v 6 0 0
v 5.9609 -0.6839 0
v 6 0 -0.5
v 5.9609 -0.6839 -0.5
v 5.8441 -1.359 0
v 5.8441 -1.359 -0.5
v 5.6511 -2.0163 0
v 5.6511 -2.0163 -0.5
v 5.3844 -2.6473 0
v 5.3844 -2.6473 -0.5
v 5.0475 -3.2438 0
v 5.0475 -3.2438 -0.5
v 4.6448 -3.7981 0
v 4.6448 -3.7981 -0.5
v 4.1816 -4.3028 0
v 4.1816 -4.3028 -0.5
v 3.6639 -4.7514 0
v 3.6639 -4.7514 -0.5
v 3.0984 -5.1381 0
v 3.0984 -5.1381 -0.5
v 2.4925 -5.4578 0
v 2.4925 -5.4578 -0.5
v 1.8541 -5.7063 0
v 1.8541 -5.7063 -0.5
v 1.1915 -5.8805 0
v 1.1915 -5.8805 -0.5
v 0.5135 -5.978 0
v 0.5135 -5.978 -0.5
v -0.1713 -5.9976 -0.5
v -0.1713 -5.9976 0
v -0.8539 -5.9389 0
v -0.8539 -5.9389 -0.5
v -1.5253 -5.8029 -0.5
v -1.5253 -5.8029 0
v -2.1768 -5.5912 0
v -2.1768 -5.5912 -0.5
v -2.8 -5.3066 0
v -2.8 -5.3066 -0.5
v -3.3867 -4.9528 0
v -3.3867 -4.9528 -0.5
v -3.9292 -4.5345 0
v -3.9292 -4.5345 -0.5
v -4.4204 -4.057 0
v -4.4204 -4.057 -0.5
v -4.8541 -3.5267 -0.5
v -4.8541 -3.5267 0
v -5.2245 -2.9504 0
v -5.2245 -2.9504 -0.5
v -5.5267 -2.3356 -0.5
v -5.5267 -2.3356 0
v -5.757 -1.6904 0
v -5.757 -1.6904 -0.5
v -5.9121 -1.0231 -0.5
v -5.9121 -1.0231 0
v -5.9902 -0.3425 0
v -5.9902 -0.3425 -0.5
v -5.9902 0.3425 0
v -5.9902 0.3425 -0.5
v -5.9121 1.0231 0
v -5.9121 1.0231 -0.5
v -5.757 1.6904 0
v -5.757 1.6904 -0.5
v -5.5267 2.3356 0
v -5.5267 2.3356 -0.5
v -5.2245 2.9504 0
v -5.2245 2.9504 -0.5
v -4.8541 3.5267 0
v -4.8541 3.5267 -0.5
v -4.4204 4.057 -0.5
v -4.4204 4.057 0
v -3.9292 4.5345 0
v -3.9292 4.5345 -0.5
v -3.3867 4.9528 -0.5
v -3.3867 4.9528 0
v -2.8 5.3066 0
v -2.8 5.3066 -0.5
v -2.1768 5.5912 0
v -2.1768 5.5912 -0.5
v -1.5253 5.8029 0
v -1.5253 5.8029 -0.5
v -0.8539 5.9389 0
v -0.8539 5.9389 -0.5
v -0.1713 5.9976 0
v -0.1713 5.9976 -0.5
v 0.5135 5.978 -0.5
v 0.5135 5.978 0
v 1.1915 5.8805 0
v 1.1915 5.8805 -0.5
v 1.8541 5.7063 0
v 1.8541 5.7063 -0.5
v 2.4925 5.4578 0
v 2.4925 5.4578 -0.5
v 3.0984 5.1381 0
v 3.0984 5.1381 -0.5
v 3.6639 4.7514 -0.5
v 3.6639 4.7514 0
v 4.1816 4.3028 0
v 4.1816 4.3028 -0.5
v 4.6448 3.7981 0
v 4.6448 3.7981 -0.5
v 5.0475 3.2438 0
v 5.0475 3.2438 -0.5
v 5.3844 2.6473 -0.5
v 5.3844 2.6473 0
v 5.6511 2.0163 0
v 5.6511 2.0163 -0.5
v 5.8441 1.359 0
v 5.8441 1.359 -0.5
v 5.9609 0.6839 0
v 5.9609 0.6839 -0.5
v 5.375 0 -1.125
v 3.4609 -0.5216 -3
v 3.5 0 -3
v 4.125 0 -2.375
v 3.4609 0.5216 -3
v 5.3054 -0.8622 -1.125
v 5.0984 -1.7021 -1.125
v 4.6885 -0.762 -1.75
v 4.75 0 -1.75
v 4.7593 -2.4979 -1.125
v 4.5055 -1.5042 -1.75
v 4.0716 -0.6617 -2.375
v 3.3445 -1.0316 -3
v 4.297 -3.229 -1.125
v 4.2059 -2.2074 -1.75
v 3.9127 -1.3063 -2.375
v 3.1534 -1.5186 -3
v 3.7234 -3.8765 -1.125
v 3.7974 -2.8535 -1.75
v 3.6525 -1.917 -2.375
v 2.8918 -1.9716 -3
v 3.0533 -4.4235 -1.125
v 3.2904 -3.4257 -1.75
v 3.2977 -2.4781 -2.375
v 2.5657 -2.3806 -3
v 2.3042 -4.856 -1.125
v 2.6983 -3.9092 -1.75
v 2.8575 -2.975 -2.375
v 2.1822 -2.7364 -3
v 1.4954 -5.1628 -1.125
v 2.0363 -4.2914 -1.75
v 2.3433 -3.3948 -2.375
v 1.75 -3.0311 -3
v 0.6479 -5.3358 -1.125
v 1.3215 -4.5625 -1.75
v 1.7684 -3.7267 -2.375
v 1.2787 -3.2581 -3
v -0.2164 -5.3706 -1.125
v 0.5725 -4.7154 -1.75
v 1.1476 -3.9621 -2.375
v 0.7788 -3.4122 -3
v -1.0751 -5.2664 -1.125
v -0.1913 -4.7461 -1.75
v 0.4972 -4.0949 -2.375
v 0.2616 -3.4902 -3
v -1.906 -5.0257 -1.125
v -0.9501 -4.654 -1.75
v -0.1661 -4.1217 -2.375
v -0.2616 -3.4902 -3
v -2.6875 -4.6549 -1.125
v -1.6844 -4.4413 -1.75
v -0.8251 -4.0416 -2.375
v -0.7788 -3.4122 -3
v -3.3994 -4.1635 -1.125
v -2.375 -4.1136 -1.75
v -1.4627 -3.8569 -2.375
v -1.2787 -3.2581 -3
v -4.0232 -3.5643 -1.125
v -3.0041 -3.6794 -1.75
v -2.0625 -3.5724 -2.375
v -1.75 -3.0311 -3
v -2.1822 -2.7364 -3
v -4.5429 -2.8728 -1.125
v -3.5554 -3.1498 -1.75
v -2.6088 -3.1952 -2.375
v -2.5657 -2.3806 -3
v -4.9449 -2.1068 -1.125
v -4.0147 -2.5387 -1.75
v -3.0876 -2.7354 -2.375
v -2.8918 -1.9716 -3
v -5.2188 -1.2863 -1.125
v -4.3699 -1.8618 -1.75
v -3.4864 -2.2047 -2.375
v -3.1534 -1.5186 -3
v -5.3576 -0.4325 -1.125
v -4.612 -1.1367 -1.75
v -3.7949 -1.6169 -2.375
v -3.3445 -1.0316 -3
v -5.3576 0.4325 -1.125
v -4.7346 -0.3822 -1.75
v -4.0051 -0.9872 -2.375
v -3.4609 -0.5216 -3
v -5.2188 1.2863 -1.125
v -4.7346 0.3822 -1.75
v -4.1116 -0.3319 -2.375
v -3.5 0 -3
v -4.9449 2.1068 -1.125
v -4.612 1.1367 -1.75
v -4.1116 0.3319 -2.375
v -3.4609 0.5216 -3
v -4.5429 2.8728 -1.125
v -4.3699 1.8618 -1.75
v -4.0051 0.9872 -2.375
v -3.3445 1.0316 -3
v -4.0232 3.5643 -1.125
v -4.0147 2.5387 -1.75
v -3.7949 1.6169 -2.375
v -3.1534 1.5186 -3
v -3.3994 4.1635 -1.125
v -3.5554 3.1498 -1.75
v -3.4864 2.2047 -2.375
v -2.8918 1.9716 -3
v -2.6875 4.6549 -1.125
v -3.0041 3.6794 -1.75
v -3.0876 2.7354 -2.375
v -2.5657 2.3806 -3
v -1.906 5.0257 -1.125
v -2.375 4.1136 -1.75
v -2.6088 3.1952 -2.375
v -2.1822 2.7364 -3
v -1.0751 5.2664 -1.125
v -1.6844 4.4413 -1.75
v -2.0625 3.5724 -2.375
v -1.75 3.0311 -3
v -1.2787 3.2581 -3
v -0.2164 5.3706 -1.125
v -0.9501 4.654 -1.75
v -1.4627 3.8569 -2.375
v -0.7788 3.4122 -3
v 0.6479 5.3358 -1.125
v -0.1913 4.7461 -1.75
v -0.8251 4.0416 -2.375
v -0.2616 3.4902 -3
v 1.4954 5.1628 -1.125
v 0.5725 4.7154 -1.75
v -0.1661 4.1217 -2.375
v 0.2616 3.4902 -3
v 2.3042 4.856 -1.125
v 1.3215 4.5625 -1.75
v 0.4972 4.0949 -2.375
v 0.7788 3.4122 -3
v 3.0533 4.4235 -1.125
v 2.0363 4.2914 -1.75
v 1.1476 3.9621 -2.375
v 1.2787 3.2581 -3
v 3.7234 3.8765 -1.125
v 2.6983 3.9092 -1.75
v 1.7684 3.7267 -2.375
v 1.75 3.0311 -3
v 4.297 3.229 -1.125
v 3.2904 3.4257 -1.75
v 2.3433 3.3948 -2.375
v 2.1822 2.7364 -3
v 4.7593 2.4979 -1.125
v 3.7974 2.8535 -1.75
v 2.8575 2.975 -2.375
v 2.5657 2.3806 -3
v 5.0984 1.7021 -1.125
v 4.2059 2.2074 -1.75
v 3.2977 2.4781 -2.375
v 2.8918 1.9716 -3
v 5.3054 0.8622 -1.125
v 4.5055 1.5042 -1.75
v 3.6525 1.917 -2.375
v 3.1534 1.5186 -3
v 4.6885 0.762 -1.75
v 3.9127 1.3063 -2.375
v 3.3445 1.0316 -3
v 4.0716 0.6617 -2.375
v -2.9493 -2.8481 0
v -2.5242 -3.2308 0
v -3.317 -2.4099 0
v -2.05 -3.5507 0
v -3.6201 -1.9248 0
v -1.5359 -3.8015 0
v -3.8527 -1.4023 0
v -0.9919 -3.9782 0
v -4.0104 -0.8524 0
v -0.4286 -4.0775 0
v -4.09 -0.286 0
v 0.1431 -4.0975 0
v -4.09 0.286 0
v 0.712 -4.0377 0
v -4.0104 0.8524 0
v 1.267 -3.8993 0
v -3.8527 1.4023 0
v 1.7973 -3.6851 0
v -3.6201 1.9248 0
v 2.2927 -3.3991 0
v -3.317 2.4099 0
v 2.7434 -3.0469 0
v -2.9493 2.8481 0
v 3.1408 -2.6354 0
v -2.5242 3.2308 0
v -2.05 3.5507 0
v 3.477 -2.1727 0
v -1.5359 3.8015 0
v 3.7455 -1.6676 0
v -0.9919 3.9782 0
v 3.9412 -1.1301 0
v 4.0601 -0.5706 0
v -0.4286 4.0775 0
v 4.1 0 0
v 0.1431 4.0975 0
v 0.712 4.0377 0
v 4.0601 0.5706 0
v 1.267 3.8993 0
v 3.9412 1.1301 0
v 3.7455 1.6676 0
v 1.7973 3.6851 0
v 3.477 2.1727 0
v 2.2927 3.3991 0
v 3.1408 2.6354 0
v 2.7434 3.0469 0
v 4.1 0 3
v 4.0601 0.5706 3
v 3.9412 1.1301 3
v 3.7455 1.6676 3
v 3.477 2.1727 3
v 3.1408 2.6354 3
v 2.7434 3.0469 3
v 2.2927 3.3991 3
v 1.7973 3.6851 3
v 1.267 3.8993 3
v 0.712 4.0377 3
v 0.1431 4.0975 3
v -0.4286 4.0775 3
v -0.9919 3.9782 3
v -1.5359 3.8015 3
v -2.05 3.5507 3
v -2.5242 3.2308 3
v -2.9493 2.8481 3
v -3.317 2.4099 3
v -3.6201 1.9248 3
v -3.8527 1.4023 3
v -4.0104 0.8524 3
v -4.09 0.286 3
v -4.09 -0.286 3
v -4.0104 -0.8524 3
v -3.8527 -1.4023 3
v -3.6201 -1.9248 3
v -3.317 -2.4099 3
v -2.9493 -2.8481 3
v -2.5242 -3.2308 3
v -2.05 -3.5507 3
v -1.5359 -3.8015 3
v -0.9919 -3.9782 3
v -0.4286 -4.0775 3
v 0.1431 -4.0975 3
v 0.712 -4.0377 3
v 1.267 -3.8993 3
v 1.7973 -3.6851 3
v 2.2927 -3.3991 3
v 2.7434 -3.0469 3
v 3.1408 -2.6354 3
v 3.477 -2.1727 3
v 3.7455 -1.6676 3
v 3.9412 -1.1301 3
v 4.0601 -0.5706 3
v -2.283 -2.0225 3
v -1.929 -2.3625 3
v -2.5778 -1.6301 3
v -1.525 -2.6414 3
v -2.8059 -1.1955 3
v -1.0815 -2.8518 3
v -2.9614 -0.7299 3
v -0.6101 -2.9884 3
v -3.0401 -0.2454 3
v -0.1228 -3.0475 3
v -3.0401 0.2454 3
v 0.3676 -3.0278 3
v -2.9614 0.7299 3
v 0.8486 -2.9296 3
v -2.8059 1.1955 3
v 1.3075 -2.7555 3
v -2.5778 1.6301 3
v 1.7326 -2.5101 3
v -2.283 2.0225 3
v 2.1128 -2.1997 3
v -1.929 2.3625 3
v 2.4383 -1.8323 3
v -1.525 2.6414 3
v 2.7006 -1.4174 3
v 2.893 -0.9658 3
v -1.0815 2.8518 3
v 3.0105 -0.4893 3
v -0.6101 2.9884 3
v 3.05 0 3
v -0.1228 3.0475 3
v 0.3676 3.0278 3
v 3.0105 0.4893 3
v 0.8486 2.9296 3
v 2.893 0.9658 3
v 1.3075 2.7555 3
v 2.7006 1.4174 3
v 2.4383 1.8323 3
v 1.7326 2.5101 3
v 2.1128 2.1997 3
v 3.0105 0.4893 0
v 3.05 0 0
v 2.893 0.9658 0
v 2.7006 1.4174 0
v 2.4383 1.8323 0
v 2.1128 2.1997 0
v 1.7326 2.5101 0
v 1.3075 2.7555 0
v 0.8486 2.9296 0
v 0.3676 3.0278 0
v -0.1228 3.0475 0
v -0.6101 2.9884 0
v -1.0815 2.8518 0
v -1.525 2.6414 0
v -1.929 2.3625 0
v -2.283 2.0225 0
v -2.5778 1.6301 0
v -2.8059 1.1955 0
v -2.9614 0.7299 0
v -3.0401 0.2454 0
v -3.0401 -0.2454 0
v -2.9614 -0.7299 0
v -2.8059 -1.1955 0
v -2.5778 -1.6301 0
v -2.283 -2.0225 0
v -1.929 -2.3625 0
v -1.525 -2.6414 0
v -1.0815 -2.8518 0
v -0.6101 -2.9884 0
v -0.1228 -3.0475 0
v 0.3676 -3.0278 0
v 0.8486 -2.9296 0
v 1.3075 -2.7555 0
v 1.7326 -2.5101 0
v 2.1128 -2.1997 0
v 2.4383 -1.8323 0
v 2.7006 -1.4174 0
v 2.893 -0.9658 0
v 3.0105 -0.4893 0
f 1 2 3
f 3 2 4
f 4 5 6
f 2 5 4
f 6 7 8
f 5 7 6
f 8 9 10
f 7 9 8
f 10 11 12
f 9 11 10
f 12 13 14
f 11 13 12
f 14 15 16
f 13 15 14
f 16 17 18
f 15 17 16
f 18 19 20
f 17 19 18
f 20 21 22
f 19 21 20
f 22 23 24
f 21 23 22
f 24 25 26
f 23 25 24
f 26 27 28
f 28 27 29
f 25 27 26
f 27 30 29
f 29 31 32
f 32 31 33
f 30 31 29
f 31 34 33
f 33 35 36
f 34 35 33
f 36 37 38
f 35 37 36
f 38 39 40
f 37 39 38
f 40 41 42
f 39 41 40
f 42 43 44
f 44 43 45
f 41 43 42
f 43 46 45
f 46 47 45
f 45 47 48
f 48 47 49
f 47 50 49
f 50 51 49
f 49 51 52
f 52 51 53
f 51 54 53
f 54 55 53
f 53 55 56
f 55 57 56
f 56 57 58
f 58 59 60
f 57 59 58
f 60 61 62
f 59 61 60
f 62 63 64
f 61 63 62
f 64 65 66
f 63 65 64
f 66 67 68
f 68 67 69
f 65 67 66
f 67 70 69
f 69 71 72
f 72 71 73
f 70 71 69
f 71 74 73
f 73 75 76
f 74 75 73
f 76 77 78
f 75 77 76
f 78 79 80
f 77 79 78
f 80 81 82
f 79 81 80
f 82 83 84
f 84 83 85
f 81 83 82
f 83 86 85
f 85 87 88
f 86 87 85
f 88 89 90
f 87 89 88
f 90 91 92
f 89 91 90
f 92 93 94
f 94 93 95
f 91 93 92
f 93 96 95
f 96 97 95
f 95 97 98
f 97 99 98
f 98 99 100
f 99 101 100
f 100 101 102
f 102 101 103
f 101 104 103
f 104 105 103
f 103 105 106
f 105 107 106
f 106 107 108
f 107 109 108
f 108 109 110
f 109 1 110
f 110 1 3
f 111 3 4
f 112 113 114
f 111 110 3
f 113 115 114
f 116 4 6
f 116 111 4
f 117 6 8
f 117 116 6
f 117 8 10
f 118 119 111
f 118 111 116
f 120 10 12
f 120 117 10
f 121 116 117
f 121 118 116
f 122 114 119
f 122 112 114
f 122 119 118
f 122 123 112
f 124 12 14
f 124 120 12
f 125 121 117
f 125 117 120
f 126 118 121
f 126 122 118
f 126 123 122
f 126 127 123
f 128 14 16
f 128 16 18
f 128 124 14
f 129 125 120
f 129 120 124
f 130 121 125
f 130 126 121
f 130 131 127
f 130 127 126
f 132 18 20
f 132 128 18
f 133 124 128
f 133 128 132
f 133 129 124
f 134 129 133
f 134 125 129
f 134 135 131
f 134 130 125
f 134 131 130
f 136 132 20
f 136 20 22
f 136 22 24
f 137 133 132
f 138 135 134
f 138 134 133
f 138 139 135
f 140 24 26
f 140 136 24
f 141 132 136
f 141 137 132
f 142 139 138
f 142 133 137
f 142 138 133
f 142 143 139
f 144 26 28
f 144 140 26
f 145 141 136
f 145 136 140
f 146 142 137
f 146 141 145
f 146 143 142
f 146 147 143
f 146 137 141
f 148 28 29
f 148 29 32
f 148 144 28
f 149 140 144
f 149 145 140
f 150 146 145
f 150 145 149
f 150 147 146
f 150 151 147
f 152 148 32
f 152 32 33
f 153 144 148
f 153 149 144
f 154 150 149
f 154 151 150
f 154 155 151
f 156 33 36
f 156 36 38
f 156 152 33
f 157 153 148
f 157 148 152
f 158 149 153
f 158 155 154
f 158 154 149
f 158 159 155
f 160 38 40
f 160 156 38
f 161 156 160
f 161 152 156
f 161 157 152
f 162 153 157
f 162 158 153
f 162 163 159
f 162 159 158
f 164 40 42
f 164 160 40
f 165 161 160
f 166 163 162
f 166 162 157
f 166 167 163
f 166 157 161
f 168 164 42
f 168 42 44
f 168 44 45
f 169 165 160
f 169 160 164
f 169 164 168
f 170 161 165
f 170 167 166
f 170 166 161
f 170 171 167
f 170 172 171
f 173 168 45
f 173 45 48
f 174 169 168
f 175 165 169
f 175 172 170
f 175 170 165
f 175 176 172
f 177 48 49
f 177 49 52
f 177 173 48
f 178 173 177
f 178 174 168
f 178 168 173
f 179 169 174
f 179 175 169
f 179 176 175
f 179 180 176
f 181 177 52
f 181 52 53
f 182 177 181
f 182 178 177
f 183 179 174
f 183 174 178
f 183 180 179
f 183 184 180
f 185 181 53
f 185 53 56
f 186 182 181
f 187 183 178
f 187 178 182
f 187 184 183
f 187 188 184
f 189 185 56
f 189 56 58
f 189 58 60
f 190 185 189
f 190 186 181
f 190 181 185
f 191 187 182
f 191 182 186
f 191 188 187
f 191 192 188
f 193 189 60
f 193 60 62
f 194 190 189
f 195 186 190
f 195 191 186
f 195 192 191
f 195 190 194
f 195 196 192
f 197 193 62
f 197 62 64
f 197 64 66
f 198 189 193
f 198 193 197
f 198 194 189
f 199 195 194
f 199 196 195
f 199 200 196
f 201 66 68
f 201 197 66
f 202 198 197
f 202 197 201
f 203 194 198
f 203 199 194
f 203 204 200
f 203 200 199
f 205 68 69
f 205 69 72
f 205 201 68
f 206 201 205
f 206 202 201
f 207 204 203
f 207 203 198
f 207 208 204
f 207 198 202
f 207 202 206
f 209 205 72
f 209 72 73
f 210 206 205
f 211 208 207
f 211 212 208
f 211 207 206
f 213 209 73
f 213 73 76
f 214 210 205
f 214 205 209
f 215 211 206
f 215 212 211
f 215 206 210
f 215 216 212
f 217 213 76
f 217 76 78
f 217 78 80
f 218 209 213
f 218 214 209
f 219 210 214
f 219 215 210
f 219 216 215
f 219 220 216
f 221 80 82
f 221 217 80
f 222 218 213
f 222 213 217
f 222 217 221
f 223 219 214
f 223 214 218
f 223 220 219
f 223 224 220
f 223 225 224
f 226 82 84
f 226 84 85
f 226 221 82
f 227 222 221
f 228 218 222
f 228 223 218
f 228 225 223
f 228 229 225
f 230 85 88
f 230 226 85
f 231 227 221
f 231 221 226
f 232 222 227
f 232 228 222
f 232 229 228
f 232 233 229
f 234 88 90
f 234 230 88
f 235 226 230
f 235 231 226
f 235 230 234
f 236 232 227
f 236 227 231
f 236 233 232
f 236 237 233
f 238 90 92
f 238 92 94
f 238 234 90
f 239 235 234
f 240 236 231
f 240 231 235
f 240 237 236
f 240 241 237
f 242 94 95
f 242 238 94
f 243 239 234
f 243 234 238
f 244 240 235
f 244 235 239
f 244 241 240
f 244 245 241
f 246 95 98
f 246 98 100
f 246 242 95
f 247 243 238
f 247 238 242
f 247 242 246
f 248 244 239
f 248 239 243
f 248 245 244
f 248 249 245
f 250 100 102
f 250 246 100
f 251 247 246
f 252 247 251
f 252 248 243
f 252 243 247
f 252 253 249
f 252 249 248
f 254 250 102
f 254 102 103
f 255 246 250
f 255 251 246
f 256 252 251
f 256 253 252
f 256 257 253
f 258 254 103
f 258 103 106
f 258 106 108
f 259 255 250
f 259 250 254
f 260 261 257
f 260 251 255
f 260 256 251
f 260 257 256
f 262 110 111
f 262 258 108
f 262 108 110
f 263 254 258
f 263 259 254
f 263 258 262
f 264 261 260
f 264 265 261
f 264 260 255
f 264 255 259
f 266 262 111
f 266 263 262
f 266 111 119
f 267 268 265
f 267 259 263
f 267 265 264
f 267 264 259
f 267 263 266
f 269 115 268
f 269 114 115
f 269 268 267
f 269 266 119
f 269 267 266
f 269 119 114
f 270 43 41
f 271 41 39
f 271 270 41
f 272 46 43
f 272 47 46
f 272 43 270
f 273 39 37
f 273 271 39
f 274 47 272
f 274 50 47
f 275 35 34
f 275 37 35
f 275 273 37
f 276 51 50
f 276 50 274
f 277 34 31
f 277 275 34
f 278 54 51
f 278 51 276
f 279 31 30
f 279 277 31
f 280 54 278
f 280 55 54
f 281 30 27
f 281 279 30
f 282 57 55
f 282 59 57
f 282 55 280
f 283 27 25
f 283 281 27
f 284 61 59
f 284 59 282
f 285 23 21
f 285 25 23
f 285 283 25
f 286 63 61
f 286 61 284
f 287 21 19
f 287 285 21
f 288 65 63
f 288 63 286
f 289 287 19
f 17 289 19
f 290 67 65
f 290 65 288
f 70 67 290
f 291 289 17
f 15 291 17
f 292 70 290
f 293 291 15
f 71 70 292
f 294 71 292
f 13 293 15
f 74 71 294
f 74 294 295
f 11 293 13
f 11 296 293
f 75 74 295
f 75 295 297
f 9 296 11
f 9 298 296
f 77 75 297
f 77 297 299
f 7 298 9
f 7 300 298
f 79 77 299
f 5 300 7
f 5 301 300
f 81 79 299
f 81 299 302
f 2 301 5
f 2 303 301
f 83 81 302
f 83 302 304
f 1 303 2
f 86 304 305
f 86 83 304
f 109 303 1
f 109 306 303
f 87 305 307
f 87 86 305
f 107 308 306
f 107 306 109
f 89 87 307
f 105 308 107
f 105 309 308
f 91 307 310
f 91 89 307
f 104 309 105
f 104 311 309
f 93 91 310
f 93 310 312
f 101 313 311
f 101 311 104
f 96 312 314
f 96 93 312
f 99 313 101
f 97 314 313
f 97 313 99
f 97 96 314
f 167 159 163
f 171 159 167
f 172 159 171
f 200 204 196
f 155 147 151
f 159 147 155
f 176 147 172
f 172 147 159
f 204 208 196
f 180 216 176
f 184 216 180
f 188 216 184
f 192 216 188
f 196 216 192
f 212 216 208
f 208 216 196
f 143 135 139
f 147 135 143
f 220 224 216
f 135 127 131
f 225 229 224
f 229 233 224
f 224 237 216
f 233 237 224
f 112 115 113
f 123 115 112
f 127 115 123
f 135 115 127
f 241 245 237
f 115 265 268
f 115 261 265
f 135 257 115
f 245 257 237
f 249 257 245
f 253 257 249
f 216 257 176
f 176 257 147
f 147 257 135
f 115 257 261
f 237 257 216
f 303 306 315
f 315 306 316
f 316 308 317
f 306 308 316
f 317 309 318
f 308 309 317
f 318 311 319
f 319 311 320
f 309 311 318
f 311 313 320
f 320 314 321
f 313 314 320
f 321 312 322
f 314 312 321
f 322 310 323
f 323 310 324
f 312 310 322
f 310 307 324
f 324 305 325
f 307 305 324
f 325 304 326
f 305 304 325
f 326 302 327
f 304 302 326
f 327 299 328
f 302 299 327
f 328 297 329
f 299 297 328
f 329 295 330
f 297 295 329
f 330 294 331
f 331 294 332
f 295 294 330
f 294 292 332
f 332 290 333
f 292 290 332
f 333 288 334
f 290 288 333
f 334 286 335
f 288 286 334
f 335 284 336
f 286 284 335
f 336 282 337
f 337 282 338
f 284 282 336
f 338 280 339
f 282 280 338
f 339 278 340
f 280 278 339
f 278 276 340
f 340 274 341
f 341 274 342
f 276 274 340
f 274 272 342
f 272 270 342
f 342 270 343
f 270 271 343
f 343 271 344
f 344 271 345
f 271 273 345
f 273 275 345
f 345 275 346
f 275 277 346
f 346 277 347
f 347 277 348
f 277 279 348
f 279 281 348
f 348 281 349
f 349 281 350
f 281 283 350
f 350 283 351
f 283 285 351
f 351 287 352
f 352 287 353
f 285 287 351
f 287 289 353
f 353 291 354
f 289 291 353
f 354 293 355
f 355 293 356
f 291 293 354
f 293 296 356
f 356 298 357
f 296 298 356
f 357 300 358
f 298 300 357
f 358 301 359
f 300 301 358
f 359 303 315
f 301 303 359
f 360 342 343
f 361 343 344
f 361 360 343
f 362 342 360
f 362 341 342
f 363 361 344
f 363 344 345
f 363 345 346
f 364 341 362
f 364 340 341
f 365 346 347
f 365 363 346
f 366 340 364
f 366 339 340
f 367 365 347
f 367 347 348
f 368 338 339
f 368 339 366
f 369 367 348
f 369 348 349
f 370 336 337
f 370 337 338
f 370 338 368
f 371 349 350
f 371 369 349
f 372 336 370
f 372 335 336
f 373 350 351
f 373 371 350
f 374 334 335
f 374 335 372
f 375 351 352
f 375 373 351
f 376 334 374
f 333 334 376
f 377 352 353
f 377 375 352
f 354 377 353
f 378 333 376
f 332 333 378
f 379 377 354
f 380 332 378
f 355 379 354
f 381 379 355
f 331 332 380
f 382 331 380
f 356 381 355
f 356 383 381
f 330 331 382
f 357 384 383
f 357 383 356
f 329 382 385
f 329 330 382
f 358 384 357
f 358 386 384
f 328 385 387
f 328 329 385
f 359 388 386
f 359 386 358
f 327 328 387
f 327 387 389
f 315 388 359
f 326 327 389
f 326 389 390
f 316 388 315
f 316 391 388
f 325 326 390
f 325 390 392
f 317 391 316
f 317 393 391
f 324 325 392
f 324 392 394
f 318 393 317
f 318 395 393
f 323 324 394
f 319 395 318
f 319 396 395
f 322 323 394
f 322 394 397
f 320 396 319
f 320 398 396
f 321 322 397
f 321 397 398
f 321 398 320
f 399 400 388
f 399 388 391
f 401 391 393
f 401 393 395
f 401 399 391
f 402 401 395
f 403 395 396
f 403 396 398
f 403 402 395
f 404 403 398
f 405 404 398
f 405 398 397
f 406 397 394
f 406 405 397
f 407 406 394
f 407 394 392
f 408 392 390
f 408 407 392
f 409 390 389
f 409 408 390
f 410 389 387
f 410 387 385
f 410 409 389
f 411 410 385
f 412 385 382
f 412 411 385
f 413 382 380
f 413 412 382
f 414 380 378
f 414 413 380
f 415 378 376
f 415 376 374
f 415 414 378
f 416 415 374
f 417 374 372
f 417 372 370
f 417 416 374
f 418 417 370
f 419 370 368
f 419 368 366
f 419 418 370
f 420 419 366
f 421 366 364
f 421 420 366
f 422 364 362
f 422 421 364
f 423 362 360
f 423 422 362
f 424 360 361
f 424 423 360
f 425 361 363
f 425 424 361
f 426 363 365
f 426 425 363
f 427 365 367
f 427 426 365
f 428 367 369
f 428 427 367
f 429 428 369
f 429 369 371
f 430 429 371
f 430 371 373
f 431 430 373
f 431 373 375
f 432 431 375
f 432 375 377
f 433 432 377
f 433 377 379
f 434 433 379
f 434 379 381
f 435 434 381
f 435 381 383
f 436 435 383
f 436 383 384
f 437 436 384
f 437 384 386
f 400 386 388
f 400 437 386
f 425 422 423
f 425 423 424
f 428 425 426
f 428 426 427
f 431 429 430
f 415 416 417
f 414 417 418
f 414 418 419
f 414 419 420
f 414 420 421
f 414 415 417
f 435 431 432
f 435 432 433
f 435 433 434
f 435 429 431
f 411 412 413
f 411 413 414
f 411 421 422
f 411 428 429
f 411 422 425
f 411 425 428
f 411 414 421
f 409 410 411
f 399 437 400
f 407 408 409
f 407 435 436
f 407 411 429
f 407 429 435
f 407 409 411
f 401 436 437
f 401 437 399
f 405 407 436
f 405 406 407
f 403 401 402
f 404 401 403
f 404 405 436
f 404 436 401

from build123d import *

# Parameters (mm, degrees)
SKETCH_R     = 4.1
SKETCH_R_2   = 3.05
PAD_DEPTH    = 3
SKETCH001_R  = 6
PAD001_DEPTH = 3
CHAMFER_SIZE = 2.5


with BuildPart() as part:
    # Sketch → Pad (new body)
    with BuildSketch(Plane.XY):
        Circle(SKETCH_R)
        Circle(SKETCH_R_2, mode=Mode.SUBTRACT)
    extrude(amount=PAD_DEPTH)

    # Sketch001 (on Face3 of Pad) → Pad001 (join)
    with BuildSketch(Plane(origin=(0, 0, 0), x_dir=(1, 0, 0), z_dir=(0, 0, -1))):
        Circle(SKETCH001_R)
    extrude(amount=PAD001_DEPTH)

    # Chamfer
    chamfer_edges = [part.edges().sort_by_distance(p)[0] for p in [
        (-6, 0, -3),
    ]]
    chamfer(chamfer_edges, length=CHAMFER_SIZE)


solid = part.part
